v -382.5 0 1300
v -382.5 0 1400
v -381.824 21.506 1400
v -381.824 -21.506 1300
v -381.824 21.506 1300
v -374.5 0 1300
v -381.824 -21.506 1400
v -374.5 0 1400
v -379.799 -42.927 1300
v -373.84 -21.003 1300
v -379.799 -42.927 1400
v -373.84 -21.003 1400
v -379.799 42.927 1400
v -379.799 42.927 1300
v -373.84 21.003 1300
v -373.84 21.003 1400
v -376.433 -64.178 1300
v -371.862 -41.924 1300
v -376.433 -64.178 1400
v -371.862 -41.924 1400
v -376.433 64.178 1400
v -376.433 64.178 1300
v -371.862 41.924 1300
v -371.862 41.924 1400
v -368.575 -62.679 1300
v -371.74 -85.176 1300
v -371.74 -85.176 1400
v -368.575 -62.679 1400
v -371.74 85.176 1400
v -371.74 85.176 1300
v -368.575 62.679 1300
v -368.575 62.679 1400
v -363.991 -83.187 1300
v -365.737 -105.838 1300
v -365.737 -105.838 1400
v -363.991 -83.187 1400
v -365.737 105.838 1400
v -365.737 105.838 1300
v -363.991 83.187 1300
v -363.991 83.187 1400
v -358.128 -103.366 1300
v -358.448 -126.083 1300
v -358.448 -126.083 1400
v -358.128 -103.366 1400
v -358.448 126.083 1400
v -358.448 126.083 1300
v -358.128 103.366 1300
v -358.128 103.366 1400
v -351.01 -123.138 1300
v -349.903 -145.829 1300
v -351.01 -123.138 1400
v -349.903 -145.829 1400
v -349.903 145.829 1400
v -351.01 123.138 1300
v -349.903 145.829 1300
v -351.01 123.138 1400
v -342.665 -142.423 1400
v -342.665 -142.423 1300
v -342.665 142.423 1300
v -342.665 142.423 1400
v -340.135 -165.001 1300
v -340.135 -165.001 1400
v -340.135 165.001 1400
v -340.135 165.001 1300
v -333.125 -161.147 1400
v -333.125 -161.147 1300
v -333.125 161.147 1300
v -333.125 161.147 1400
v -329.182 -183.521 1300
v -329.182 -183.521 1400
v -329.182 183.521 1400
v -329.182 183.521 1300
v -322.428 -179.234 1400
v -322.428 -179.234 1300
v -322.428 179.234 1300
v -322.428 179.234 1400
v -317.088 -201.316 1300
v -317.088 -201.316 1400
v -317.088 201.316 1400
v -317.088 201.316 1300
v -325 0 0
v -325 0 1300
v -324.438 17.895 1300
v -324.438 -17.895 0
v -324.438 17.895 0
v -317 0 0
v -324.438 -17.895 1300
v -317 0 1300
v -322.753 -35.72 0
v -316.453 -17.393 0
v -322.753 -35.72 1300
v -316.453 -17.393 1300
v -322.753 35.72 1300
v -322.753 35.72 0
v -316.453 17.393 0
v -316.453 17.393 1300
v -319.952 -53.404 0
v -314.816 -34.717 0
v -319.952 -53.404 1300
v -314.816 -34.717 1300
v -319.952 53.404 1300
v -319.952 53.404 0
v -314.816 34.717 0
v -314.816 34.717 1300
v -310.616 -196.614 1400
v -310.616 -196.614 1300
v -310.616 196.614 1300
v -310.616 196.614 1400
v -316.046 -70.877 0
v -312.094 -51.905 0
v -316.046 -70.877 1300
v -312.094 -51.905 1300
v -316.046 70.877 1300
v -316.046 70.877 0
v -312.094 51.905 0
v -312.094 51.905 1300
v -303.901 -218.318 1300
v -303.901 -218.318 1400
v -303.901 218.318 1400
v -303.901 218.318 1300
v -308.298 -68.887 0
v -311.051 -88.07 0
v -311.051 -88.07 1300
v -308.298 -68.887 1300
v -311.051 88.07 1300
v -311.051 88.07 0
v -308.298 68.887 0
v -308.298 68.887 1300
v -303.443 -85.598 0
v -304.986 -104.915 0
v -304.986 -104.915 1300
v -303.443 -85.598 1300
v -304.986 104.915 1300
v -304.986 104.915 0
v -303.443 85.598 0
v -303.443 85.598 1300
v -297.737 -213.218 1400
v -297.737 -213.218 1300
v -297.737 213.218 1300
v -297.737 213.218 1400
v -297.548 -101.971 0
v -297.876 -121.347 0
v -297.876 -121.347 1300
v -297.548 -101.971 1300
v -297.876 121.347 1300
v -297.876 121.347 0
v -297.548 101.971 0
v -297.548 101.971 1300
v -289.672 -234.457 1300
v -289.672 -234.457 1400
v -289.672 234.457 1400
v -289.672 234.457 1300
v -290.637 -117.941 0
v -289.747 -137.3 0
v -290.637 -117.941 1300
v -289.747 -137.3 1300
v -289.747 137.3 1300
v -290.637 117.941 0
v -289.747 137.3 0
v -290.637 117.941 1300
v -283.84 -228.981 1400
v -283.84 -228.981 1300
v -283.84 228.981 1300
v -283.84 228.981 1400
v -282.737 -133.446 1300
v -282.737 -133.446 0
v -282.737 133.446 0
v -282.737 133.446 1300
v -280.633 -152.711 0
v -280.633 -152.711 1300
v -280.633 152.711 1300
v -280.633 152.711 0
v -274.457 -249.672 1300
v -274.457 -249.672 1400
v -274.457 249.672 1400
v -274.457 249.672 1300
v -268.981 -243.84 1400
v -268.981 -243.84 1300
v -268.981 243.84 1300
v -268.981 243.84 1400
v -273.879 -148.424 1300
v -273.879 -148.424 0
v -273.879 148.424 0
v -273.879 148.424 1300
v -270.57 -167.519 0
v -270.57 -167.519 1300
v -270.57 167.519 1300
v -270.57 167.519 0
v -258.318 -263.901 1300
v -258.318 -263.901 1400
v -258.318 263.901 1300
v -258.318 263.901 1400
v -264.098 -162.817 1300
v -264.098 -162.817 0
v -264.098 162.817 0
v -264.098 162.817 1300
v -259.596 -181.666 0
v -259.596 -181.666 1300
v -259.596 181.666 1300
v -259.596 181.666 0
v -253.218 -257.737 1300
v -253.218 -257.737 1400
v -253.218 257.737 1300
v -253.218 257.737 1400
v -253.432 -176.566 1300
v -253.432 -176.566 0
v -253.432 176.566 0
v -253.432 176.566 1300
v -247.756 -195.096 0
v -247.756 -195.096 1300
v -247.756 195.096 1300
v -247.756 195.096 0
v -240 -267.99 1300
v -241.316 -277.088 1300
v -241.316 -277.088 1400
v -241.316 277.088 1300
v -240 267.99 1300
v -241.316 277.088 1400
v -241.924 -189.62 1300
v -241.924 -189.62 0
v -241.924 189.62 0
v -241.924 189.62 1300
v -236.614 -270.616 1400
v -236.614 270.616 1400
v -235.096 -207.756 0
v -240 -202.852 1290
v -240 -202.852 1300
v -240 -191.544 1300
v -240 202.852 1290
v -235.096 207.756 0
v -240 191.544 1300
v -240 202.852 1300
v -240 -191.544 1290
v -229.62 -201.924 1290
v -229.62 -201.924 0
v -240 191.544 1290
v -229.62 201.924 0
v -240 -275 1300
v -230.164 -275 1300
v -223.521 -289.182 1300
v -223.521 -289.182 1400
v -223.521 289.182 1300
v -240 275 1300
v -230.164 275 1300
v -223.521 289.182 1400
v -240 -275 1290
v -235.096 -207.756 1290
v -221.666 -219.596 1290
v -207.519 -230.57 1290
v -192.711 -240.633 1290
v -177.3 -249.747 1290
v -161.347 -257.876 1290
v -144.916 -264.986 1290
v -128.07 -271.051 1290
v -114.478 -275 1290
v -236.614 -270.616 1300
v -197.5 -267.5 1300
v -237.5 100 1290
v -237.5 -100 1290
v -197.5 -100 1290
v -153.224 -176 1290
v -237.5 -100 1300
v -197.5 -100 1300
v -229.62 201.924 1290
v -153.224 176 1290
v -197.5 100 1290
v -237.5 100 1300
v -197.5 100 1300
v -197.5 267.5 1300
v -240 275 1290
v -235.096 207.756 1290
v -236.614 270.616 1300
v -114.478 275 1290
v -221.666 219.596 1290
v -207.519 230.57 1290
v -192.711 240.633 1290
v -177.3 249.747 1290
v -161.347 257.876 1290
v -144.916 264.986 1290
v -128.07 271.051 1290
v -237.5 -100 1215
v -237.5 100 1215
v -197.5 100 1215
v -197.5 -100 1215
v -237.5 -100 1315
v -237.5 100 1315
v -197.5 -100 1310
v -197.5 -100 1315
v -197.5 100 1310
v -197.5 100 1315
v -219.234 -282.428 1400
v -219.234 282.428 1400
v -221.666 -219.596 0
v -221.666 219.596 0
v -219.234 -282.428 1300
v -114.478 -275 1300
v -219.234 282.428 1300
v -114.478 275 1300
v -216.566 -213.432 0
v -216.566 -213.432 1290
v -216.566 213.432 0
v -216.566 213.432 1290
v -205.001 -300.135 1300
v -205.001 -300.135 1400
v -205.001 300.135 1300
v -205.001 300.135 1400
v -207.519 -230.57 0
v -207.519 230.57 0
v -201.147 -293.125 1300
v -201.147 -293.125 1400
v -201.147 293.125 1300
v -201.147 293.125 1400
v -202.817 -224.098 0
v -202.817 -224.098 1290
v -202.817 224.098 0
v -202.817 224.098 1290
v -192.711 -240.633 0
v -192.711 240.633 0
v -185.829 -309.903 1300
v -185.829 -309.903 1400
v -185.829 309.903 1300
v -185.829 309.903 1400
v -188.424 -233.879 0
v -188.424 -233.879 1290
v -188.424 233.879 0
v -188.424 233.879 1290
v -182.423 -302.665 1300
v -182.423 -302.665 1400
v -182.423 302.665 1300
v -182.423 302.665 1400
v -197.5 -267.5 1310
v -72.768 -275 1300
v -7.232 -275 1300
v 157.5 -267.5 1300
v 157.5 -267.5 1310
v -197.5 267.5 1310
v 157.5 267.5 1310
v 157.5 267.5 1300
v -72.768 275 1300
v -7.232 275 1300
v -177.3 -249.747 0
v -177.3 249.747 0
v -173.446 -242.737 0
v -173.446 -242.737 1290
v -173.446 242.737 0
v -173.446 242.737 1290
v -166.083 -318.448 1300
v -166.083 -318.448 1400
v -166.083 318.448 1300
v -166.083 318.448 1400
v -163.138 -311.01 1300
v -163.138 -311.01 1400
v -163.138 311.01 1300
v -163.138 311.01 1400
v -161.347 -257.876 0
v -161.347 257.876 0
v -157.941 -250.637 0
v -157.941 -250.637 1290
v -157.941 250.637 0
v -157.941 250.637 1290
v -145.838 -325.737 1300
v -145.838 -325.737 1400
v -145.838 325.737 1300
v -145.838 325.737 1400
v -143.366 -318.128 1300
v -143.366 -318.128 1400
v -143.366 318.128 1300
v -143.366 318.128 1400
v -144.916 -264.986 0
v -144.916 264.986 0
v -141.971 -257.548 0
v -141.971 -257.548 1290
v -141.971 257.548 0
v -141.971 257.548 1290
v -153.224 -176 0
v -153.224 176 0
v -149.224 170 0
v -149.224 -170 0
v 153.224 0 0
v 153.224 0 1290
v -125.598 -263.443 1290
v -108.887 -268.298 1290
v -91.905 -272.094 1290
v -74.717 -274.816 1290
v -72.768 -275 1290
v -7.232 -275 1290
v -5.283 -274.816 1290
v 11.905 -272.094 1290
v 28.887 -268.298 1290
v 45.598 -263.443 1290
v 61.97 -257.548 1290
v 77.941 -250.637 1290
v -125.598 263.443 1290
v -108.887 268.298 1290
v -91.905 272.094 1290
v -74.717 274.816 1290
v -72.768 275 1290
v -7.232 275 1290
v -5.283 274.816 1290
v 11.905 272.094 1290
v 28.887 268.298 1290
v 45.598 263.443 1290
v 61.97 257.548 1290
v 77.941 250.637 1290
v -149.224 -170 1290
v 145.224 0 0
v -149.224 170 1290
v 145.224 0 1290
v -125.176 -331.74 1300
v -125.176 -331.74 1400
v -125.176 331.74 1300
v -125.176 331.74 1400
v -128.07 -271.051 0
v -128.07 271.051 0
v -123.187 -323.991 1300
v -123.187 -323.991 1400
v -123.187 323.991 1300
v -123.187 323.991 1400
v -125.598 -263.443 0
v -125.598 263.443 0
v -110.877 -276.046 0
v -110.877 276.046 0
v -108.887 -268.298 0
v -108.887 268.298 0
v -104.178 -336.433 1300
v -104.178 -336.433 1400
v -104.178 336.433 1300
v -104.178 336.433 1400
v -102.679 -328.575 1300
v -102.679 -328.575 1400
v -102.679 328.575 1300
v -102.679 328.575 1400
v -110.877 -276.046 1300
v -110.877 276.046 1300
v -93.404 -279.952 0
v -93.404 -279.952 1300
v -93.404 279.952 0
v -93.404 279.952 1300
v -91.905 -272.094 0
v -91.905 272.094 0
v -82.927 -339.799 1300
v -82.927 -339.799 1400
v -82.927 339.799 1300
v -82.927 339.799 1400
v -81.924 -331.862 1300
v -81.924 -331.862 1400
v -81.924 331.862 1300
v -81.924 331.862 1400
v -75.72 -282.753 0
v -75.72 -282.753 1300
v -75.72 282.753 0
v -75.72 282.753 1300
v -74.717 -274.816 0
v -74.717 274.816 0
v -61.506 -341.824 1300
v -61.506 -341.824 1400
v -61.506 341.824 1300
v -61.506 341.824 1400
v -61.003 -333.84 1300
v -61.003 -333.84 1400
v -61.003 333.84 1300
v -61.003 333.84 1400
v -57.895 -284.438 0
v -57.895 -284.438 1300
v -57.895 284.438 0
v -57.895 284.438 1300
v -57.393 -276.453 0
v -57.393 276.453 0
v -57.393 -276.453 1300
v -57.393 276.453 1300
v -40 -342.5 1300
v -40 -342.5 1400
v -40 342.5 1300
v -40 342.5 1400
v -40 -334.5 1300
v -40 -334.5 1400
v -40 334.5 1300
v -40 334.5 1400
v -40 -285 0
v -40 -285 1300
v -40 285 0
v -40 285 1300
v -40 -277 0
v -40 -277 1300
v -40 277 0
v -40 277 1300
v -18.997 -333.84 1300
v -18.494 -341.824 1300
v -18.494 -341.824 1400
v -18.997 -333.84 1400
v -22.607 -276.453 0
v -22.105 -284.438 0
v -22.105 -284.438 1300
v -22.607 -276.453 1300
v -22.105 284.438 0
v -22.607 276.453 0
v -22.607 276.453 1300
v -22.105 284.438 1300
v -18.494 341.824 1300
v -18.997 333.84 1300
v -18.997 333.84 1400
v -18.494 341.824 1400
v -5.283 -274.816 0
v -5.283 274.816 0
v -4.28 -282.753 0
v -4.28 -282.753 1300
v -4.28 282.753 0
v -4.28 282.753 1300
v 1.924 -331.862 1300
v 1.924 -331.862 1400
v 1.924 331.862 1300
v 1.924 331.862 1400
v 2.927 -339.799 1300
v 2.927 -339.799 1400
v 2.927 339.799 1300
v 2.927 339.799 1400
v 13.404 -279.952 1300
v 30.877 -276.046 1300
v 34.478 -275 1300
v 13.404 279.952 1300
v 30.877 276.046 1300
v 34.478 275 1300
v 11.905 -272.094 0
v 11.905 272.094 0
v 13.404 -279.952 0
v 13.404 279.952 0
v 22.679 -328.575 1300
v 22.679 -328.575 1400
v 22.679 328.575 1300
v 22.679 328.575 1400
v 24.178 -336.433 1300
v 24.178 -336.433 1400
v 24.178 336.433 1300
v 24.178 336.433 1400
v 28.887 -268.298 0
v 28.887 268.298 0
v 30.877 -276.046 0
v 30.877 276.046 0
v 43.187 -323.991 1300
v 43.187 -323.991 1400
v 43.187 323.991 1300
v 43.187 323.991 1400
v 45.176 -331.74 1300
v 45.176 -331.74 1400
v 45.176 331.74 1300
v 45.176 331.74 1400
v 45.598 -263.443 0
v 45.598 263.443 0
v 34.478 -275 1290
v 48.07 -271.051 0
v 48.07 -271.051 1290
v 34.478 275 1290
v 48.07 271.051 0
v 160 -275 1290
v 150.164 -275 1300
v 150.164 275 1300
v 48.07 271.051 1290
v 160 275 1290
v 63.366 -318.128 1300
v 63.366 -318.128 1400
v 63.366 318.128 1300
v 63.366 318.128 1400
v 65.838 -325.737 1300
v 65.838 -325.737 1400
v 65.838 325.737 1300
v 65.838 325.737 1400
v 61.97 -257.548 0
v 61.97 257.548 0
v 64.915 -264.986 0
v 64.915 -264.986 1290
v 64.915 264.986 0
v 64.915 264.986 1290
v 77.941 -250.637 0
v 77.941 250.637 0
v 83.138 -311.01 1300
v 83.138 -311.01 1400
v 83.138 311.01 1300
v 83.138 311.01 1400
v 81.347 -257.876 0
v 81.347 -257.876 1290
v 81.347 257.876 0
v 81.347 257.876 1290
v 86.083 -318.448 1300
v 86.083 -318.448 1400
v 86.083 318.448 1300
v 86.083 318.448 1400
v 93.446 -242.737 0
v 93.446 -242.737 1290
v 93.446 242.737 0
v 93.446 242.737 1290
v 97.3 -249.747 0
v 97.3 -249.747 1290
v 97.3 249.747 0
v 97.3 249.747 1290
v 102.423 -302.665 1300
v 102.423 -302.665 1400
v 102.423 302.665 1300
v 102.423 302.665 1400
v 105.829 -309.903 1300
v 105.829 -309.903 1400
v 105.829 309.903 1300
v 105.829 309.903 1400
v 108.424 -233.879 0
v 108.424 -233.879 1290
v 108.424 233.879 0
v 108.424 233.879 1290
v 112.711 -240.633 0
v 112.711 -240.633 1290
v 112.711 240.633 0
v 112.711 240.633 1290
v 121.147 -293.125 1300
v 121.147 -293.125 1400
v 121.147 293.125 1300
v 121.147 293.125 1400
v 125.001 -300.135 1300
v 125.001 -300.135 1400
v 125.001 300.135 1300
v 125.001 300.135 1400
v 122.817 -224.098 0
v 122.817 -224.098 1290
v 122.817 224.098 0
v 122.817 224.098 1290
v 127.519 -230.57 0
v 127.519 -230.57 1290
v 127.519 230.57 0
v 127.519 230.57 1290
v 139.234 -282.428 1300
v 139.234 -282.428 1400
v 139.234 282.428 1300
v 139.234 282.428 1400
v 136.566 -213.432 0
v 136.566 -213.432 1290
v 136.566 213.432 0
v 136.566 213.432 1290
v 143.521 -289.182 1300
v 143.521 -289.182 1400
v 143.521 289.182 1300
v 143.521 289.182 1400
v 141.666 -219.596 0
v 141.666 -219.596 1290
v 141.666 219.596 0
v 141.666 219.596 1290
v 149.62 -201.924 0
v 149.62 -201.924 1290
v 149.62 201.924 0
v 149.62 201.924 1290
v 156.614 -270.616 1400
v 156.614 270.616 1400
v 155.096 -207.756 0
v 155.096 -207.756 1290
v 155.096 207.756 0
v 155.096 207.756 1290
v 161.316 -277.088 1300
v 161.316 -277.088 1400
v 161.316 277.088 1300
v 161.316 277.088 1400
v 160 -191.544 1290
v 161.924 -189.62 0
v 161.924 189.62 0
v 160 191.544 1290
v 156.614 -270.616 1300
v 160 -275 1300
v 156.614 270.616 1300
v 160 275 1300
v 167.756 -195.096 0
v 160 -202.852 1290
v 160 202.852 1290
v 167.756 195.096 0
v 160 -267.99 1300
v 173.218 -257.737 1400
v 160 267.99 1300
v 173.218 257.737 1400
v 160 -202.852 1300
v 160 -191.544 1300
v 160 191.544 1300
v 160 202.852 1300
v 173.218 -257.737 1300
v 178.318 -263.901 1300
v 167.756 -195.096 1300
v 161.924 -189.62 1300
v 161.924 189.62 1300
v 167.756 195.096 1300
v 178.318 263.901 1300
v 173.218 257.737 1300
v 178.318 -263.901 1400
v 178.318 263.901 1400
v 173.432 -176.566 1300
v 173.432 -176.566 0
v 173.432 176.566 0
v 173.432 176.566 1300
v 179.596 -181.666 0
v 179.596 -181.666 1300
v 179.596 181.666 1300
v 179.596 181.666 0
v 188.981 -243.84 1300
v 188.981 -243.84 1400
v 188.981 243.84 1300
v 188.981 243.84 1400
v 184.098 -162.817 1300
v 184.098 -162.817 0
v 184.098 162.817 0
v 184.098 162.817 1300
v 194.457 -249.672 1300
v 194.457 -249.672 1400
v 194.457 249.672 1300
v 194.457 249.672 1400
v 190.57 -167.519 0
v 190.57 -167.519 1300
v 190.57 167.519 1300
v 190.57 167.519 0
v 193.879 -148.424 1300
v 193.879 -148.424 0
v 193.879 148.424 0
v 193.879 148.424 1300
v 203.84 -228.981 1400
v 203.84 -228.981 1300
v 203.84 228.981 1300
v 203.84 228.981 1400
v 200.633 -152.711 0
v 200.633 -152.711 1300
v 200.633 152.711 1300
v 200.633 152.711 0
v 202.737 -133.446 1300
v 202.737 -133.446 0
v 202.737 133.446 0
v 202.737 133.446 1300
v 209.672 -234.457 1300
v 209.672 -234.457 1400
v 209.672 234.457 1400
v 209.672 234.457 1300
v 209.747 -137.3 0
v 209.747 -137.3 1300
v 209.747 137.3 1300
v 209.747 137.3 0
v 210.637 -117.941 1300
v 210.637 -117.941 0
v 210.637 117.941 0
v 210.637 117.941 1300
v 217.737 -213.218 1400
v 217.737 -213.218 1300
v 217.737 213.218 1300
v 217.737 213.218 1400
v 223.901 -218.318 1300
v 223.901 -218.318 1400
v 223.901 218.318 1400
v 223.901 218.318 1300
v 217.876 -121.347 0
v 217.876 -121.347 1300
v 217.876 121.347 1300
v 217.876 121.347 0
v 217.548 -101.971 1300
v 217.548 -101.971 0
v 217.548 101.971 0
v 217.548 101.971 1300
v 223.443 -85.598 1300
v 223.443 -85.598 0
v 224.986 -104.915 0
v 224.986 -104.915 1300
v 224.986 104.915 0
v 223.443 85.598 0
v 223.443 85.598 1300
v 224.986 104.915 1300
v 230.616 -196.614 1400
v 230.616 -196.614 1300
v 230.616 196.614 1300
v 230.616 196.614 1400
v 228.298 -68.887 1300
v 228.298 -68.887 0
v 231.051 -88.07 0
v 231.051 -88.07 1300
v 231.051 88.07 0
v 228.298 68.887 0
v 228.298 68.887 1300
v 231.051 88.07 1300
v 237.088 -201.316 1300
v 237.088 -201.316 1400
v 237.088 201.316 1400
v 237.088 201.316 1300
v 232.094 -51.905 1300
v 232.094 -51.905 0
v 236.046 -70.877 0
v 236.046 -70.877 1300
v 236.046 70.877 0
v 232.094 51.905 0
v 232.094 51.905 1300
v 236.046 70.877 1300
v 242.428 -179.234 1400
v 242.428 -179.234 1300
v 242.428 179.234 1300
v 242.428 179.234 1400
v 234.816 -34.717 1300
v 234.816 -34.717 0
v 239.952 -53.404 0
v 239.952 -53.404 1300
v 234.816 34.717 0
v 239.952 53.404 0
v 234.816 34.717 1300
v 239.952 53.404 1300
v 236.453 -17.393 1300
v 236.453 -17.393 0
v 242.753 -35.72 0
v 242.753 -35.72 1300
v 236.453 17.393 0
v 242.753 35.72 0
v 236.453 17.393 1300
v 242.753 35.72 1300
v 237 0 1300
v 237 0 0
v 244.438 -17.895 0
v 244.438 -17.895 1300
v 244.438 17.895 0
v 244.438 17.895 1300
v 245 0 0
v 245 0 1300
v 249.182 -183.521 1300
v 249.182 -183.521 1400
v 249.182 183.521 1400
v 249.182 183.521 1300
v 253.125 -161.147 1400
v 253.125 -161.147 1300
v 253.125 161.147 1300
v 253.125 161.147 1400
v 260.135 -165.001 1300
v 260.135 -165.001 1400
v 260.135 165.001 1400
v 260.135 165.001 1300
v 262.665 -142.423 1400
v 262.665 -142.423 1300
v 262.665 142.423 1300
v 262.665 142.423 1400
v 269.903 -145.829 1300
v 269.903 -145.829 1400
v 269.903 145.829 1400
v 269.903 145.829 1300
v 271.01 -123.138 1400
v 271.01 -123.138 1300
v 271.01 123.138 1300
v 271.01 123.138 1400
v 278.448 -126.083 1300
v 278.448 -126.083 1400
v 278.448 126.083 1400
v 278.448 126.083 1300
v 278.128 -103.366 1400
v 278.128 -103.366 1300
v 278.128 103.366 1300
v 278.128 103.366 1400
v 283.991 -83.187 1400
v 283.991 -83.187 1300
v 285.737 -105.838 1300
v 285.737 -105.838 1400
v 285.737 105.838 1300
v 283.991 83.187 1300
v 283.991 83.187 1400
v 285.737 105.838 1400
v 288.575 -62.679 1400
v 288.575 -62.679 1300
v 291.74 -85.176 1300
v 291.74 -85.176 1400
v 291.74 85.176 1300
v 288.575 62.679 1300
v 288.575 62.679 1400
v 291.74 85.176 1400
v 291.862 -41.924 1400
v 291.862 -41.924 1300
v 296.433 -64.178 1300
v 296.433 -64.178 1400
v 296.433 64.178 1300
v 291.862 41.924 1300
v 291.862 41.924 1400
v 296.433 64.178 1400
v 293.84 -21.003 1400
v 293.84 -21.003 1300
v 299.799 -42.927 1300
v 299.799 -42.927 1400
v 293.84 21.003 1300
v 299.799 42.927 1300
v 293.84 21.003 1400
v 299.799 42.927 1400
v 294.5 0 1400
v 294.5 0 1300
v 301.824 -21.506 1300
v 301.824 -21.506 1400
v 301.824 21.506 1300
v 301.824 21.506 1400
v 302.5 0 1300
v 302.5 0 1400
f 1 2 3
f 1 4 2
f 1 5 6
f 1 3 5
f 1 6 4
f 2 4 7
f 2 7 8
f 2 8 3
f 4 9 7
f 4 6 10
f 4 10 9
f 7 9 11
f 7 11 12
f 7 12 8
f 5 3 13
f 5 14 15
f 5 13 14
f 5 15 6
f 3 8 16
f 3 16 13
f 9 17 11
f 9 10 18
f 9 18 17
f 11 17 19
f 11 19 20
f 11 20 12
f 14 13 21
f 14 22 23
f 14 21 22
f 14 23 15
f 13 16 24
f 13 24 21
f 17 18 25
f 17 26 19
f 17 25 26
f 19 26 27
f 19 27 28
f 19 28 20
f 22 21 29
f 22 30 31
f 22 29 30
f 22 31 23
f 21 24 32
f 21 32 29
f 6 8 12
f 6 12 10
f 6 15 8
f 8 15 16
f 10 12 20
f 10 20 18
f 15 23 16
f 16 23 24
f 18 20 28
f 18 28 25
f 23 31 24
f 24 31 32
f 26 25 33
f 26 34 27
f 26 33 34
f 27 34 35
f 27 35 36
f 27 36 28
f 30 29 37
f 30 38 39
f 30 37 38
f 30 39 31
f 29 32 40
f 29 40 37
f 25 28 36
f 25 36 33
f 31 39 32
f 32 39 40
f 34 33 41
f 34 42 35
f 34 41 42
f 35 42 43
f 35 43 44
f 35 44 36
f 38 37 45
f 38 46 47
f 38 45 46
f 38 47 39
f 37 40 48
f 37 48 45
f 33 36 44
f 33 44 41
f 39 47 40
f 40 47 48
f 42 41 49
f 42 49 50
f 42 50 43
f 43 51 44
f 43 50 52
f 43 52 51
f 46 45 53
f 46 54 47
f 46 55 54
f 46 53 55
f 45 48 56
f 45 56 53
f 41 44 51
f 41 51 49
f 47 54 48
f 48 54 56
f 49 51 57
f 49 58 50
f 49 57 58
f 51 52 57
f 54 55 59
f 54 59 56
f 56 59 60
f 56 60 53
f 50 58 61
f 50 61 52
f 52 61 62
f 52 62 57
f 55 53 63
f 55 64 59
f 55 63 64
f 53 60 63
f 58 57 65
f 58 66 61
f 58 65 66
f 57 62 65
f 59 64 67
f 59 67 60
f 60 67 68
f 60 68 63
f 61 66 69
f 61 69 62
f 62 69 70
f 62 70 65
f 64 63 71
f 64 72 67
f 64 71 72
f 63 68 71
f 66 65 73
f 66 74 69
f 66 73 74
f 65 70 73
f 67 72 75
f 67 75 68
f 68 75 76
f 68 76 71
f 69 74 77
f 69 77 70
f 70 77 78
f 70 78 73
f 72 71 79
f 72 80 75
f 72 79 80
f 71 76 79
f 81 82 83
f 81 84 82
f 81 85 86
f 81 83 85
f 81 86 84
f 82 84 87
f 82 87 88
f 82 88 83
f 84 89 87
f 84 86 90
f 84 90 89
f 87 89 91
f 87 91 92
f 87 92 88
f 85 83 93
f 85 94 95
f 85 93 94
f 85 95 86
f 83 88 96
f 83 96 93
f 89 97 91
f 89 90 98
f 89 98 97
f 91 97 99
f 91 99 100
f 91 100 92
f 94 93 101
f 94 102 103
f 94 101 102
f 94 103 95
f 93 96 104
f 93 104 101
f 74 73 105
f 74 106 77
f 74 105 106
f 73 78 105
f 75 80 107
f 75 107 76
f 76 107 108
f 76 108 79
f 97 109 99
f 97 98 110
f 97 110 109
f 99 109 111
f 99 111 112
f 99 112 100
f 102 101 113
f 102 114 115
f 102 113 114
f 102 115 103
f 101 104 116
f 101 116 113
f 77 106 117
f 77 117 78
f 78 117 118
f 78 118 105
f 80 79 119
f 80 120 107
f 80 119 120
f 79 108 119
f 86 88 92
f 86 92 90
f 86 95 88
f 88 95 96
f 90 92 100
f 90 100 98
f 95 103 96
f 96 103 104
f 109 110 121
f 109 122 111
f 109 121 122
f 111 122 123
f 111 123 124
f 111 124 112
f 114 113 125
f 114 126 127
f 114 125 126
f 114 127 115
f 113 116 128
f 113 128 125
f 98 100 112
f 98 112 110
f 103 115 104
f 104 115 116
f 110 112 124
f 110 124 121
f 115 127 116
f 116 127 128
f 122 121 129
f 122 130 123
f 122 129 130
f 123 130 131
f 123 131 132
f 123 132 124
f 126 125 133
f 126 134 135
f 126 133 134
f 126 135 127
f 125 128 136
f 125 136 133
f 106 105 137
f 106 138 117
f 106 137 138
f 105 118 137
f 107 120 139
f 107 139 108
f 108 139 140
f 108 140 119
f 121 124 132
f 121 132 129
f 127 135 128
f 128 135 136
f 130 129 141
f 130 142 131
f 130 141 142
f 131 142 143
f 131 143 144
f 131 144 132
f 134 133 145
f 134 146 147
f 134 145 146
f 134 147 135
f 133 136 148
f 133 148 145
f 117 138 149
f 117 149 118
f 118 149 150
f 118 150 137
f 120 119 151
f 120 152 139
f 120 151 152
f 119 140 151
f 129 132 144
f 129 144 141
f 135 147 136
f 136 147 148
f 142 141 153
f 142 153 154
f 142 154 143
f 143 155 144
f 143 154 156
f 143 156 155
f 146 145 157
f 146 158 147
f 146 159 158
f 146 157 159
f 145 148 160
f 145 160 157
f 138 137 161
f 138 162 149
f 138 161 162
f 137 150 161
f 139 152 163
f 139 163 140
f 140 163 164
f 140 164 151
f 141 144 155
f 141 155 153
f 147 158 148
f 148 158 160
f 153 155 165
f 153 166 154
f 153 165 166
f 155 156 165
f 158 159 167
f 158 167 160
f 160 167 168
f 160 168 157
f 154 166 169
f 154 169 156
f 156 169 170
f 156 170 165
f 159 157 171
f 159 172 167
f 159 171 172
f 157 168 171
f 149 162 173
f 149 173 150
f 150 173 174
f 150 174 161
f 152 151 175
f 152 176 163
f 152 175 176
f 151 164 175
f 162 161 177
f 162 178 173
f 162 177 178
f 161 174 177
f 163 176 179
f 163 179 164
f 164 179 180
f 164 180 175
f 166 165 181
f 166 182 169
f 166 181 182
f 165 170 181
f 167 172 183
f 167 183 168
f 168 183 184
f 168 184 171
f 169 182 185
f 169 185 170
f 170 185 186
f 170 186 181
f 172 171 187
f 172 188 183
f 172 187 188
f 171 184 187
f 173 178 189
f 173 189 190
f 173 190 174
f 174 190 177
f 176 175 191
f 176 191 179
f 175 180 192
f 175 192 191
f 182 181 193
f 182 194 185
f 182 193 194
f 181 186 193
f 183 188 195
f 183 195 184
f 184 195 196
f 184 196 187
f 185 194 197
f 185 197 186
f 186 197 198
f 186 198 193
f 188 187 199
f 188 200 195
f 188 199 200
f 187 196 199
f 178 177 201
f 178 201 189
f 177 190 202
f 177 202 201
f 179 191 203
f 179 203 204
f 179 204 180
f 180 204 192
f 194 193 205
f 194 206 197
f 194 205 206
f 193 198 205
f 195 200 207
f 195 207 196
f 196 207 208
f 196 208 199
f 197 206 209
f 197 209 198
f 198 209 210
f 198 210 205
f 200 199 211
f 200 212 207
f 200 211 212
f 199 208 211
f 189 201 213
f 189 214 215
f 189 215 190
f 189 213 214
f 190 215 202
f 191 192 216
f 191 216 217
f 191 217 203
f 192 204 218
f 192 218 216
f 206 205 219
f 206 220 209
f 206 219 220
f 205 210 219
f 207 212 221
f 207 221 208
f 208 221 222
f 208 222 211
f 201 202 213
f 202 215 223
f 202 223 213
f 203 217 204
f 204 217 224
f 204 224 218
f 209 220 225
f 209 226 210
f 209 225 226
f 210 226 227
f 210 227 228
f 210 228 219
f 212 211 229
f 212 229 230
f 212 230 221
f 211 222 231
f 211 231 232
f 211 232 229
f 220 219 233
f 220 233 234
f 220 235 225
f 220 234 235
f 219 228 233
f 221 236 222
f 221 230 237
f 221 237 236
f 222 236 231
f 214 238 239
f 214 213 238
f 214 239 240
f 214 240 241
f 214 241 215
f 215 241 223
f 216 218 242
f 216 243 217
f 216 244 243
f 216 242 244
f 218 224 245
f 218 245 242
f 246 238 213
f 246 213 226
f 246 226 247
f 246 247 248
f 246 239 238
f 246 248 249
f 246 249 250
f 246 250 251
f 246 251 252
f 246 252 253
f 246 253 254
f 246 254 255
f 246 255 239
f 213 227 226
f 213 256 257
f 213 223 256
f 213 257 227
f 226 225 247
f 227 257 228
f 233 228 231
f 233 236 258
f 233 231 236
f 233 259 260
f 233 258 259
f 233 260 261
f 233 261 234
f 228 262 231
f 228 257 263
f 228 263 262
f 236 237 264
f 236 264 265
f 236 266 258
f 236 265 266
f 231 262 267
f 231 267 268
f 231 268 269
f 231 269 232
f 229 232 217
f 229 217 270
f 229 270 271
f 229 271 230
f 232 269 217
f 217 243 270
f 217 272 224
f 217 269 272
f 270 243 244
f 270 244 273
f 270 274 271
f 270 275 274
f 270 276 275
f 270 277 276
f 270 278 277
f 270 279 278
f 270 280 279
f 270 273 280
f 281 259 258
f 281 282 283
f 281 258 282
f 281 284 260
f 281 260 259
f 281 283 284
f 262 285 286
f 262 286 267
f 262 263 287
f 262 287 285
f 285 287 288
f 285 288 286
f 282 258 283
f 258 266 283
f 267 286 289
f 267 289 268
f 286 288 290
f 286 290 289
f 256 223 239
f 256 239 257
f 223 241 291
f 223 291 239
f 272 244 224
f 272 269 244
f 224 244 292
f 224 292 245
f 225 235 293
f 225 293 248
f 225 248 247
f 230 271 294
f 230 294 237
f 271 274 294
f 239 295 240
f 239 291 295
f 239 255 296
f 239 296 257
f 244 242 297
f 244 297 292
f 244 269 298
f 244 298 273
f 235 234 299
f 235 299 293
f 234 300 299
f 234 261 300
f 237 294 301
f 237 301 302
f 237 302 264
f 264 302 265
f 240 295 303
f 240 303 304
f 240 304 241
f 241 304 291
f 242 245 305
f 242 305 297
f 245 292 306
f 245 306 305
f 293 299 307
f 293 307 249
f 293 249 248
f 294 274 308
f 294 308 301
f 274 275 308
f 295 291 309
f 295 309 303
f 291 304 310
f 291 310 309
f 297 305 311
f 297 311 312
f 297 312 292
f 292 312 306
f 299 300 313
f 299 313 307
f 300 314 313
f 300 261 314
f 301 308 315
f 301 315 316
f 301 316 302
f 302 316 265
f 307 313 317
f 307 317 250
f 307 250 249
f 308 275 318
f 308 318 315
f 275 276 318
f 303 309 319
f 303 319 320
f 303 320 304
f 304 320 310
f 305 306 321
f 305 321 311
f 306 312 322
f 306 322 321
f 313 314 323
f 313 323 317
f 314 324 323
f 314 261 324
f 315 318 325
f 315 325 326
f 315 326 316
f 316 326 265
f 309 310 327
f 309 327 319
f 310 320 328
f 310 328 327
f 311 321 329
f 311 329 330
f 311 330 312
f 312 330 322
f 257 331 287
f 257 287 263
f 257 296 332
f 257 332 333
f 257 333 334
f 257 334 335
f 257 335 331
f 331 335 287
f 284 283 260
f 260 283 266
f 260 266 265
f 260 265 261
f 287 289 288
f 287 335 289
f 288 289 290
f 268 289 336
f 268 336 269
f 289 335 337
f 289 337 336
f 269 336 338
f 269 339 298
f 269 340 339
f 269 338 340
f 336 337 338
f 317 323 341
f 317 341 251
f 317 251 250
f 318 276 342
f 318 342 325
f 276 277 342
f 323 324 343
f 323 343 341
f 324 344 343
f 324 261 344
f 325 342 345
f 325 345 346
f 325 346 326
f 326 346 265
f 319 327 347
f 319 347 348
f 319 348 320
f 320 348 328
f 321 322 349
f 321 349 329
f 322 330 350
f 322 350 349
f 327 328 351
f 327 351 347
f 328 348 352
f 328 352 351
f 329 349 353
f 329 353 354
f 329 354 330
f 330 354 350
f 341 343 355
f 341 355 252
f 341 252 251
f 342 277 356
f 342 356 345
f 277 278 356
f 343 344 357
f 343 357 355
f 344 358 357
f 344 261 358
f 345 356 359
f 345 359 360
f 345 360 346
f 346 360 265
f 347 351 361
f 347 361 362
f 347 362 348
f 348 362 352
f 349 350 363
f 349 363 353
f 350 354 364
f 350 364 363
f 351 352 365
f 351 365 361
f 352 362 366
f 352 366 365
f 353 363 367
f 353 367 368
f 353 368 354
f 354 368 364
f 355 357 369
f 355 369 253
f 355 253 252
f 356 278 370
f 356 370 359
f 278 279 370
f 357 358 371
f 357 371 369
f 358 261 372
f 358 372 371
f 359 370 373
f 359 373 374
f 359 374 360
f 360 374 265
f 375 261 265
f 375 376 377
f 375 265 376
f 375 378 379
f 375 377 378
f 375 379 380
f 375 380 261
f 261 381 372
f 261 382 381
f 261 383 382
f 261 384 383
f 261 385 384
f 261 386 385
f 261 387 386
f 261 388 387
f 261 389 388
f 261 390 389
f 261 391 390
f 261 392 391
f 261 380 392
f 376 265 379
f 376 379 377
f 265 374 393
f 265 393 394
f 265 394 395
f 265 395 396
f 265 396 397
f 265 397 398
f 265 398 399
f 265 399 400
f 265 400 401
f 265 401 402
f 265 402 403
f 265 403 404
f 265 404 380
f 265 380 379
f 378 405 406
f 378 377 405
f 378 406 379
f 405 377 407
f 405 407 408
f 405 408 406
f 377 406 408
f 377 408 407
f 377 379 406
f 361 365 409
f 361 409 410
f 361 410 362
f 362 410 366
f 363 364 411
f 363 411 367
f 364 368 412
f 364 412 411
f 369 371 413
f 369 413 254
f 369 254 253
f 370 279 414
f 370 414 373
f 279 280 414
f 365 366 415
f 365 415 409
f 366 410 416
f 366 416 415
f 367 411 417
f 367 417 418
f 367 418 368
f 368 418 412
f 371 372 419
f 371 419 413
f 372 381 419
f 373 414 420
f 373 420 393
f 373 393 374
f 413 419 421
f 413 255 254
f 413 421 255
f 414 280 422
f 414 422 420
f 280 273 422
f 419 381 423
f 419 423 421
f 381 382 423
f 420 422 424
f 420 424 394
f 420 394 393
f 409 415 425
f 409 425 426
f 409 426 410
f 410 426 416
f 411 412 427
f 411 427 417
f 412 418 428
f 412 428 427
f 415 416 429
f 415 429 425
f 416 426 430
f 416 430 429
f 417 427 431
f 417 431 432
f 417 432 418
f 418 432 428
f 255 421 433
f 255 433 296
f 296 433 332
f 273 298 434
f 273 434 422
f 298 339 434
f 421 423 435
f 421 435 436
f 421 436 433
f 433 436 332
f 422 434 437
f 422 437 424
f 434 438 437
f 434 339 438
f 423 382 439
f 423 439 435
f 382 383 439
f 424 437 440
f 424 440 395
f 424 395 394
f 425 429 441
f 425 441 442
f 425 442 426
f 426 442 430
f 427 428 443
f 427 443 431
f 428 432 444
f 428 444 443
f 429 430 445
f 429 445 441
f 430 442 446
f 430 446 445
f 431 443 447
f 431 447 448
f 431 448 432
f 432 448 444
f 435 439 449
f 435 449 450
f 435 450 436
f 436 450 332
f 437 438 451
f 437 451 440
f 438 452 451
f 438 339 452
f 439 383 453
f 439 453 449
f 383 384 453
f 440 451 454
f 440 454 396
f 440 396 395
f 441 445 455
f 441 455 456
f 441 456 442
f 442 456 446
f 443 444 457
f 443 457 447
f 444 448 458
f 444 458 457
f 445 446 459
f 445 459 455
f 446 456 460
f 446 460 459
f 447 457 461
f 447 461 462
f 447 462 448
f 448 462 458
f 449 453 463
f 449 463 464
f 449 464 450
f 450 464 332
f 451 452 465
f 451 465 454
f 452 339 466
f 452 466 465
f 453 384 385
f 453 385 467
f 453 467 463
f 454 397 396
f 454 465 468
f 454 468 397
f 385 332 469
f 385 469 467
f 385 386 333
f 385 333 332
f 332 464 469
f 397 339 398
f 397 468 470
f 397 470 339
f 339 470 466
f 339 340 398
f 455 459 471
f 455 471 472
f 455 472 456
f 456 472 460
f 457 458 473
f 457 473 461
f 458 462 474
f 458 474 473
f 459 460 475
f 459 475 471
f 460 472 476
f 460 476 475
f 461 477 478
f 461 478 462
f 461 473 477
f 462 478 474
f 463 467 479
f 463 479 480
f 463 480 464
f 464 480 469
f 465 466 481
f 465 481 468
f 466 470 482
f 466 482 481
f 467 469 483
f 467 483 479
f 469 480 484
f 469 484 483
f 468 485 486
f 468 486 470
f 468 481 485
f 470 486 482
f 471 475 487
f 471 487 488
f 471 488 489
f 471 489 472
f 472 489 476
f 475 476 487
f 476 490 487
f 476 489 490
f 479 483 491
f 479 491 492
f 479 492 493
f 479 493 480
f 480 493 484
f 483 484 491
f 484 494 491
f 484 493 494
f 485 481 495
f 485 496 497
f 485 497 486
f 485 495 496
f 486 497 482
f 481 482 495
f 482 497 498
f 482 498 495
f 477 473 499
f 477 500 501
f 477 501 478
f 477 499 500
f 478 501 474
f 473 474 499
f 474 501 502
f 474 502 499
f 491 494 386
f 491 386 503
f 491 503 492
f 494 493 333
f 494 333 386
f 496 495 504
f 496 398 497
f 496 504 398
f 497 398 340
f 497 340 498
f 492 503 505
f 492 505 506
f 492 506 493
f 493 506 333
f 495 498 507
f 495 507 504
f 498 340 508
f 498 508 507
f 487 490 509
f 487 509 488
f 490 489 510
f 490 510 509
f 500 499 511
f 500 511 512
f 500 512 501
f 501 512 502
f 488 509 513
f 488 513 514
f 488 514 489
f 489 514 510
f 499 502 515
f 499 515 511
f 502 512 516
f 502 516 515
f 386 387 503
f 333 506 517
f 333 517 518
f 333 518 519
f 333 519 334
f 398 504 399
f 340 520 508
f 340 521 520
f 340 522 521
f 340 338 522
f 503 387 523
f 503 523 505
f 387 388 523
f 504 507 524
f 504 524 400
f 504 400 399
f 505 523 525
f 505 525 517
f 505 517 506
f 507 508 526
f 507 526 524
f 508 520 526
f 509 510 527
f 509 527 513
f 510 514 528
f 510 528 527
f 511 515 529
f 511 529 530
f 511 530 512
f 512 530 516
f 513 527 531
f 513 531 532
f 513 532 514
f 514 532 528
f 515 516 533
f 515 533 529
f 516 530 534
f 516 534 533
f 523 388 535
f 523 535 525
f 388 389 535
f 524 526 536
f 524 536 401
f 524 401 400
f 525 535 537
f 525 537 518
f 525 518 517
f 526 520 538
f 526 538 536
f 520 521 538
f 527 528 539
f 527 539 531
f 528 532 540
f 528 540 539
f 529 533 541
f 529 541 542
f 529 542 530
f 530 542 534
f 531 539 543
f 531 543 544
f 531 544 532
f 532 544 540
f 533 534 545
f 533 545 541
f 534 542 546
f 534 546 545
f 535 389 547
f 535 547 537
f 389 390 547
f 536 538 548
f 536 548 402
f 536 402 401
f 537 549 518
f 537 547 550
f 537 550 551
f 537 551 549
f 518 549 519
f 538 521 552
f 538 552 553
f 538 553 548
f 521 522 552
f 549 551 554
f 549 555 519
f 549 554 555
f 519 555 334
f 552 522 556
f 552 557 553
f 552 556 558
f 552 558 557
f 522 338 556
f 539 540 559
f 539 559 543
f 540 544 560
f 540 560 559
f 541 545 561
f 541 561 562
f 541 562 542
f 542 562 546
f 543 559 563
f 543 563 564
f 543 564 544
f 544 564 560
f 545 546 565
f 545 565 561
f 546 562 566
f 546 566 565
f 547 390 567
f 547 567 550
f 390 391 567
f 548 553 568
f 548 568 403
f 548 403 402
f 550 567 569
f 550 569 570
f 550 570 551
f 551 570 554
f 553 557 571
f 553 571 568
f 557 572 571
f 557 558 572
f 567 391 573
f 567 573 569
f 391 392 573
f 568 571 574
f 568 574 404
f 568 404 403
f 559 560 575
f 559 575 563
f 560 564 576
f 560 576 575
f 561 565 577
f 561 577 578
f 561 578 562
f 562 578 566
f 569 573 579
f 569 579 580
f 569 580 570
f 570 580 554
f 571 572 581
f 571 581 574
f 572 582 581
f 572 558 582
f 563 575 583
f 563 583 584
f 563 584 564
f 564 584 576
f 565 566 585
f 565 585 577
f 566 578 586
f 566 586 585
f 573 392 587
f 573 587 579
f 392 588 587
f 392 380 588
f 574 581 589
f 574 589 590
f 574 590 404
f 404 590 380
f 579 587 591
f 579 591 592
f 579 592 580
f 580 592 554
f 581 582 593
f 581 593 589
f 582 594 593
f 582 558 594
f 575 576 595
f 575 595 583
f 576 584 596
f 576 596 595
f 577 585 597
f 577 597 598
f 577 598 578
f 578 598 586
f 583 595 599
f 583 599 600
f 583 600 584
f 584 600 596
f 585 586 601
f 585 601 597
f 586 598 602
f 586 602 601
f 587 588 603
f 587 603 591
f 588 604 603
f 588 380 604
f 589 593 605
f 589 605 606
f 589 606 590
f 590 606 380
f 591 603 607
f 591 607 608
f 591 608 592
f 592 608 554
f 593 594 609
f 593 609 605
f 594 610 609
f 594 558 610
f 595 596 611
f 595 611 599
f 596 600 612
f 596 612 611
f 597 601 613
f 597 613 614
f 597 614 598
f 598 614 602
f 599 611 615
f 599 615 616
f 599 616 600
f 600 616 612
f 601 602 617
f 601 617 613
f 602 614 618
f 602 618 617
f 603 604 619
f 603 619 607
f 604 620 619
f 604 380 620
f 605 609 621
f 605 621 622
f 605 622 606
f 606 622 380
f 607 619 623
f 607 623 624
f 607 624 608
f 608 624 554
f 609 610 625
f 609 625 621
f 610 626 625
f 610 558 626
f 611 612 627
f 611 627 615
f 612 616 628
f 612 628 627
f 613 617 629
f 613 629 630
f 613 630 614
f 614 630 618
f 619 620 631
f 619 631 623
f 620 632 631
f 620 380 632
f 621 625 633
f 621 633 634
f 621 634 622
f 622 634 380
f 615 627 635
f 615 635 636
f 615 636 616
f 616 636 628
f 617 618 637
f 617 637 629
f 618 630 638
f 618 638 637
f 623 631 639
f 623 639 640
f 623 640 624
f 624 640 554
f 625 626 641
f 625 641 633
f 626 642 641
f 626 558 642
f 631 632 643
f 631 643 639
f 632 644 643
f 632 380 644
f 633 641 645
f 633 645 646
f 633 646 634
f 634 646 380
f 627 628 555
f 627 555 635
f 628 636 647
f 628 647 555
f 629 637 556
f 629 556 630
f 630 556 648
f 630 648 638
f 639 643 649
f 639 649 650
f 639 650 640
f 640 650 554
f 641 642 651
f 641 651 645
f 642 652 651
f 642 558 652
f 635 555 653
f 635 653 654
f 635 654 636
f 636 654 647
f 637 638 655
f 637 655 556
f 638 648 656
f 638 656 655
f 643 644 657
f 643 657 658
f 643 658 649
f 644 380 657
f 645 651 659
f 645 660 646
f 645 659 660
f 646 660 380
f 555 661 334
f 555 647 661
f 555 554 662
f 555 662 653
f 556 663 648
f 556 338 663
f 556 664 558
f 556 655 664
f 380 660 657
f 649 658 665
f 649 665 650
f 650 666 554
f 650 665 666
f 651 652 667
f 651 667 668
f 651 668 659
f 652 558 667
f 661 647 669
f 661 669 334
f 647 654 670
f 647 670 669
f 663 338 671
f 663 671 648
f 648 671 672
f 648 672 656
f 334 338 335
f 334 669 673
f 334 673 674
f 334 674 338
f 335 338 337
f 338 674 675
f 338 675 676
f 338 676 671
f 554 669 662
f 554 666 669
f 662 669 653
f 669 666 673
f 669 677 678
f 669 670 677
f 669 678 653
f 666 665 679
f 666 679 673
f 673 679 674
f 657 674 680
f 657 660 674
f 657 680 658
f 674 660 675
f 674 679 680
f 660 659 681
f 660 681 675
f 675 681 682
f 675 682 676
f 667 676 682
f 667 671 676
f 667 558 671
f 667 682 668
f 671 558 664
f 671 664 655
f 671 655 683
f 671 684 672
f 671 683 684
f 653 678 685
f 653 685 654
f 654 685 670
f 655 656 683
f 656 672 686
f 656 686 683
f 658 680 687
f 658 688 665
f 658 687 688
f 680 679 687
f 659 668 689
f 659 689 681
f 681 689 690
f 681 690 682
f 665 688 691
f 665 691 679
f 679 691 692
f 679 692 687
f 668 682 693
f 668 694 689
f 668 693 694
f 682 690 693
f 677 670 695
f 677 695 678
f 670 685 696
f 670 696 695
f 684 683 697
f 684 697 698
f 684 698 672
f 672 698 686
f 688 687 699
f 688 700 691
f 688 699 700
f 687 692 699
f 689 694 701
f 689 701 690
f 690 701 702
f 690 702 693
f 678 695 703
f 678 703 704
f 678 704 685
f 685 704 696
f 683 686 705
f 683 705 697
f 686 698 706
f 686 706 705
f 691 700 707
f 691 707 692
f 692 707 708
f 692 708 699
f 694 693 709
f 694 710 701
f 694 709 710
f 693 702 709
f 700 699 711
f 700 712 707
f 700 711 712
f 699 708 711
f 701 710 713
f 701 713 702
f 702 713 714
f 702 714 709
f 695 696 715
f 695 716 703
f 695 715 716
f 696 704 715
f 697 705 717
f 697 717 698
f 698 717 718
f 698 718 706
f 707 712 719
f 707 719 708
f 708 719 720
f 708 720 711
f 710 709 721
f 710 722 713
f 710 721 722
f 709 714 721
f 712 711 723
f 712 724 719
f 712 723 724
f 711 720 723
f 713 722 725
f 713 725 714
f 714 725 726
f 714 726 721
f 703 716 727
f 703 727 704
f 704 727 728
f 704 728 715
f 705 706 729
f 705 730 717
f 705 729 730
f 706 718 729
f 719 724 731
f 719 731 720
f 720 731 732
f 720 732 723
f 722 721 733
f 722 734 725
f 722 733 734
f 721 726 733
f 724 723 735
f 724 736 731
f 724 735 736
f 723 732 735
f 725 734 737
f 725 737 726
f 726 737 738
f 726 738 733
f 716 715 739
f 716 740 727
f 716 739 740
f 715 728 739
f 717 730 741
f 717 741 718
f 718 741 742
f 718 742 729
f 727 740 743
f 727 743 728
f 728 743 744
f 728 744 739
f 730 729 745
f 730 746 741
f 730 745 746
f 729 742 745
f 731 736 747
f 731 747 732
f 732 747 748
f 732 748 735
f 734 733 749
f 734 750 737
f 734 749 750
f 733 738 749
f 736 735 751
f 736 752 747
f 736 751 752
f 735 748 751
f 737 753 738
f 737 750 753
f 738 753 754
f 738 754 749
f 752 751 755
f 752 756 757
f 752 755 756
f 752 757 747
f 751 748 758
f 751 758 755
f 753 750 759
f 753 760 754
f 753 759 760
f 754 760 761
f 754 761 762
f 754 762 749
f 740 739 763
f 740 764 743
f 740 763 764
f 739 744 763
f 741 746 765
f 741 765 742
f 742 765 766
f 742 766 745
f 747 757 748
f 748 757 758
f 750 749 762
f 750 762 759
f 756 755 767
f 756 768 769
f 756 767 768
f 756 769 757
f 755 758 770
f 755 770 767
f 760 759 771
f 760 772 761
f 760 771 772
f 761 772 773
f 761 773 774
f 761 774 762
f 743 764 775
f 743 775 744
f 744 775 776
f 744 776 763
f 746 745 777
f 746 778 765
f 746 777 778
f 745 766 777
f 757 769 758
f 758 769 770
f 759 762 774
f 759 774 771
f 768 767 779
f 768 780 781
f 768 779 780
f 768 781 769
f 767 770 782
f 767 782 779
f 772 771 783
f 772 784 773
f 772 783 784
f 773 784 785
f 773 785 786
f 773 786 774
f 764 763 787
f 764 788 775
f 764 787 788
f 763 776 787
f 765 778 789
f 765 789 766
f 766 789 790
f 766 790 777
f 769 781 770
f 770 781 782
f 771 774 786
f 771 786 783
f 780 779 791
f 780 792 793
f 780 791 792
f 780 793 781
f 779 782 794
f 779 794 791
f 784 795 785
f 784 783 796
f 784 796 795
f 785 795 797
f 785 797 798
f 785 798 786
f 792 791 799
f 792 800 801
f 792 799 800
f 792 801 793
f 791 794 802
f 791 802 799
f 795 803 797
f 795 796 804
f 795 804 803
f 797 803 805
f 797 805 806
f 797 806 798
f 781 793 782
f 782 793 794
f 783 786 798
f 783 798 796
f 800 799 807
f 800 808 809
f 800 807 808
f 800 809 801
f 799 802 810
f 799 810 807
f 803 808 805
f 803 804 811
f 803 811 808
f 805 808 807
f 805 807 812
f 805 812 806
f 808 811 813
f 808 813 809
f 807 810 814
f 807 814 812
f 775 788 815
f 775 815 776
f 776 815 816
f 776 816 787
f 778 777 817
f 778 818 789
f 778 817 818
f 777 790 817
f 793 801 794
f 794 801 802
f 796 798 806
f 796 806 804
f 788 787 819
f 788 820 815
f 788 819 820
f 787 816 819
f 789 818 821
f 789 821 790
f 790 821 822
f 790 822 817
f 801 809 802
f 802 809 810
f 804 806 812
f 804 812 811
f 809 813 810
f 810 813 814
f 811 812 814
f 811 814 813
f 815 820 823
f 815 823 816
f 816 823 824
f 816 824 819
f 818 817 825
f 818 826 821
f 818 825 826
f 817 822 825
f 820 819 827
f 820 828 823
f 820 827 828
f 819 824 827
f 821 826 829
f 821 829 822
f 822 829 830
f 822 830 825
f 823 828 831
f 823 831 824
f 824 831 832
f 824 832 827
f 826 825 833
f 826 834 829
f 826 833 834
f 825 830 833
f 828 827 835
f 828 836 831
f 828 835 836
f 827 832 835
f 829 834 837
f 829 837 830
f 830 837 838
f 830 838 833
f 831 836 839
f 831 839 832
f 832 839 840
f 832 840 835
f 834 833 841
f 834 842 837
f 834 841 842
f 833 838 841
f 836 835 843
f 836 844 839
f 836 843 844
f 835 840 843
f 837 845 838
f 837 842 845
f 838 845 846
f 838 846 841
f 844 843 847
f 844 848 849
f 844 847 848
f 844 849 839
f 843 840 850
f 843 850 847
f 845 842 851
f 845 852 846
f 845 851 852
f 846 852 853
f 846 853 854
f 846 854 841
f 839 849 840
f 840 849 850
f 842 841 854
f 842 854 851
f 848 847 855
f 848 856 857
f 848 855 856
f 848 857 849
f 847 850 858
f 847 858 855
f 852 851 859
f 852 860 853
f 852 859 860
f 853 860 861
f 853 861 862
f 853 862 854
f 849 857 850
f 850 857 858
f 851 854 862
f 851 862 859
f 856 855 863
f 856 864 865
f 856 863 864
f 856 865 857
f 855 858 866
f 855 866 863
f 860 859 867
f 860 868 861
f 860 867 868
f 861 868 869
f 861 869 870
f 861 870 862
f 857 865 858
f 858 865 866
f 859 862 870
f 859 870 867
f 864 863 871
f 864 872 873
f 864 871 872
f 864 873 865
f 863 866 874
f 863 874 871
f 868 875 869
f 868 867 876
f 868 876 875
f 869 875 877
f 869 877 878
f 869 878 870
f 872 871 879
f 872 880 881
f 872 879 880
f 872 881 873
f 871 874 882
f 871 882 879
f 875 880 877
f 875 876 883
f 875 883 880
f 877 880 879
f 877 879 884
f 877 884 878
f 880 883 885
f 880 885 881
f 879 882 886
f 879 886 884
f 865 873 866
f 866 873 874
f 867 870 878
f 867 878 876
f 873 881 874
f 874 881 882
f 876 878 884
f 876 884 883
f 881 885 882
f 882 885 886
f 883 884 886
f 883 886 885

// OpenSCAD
diameter=570;
height=1300;
top_diameter=685;
top_height=100;

mirror_side=340;
mirror_height=mirror_side/2*sqrt(3);
mirror_thick=6;
mon_width=535;
mon_height=315;
glass_width=550;
glass_height=400;
$fn=100;

module mirrors(h, s, t) {
    difference() {
         linear_extrude(height) polygon(points=[[h/2+t,0], [-(h/2+t),s/2+t], [-(h/2+t),-(s/2+t)]], paths=[[0,1,2]]);
         translate([-2,0,-5]) linear_extrude(height+10)  polygon(points=[[h/2,0], [-h/2,s/2], [-h/2,-s/2]], paths=[[0,1,2]]);
    }
}

module monitor() {
    color("blue") cube([mon_width,mon_height,10], center=true);
    color("yellow") translate([0,-40,-10]) cube([glass_width,glass_height,10], center=true);
    color("green") translate([0,-(mon_height/2+20),0]) cube([mon_width,40,10], center=true);
    color("grey") translate([0,-(mon_height/2+60),-40]) cube([200,40,100], center=true);
}

module beamer() {
    color("blue") cube([mon_width,mon_height,10], center=true);
    color("grey") translate([0,mon_height/2+95,250]) cube([1000,100,500], center=true);
}

translate([0,0,0]) mirrors(mirror_height, mirror_side, mirror_thick);

// Tophuelle
translate([-40,0,height]) difference() {
    cylinder(d=top_diameter, h=top_height);
    translate([0,0,-5]) cylinder(d=top_diameter-16, h=top_height+10);
}

// Aussenhuelle
translate([-40,0,0]) difference() {
    cylinder(d=diameter, h=height);
    translate([0,0,-5]) cylinder(d=diameter-16, h=height+10);
}

// Spiegel
//translate([47.7,-73,0]) rotate([0,0,-30]) difference() {
    //linear_extrude(height) mirrors(mirror_height+16, mirror_side+16);
//    mirrors(mirror_height, mirror_side);
//}

// 1x24" Monitore
translate([0,0,height+5]) rotate([0,0,-90]) monitor();
